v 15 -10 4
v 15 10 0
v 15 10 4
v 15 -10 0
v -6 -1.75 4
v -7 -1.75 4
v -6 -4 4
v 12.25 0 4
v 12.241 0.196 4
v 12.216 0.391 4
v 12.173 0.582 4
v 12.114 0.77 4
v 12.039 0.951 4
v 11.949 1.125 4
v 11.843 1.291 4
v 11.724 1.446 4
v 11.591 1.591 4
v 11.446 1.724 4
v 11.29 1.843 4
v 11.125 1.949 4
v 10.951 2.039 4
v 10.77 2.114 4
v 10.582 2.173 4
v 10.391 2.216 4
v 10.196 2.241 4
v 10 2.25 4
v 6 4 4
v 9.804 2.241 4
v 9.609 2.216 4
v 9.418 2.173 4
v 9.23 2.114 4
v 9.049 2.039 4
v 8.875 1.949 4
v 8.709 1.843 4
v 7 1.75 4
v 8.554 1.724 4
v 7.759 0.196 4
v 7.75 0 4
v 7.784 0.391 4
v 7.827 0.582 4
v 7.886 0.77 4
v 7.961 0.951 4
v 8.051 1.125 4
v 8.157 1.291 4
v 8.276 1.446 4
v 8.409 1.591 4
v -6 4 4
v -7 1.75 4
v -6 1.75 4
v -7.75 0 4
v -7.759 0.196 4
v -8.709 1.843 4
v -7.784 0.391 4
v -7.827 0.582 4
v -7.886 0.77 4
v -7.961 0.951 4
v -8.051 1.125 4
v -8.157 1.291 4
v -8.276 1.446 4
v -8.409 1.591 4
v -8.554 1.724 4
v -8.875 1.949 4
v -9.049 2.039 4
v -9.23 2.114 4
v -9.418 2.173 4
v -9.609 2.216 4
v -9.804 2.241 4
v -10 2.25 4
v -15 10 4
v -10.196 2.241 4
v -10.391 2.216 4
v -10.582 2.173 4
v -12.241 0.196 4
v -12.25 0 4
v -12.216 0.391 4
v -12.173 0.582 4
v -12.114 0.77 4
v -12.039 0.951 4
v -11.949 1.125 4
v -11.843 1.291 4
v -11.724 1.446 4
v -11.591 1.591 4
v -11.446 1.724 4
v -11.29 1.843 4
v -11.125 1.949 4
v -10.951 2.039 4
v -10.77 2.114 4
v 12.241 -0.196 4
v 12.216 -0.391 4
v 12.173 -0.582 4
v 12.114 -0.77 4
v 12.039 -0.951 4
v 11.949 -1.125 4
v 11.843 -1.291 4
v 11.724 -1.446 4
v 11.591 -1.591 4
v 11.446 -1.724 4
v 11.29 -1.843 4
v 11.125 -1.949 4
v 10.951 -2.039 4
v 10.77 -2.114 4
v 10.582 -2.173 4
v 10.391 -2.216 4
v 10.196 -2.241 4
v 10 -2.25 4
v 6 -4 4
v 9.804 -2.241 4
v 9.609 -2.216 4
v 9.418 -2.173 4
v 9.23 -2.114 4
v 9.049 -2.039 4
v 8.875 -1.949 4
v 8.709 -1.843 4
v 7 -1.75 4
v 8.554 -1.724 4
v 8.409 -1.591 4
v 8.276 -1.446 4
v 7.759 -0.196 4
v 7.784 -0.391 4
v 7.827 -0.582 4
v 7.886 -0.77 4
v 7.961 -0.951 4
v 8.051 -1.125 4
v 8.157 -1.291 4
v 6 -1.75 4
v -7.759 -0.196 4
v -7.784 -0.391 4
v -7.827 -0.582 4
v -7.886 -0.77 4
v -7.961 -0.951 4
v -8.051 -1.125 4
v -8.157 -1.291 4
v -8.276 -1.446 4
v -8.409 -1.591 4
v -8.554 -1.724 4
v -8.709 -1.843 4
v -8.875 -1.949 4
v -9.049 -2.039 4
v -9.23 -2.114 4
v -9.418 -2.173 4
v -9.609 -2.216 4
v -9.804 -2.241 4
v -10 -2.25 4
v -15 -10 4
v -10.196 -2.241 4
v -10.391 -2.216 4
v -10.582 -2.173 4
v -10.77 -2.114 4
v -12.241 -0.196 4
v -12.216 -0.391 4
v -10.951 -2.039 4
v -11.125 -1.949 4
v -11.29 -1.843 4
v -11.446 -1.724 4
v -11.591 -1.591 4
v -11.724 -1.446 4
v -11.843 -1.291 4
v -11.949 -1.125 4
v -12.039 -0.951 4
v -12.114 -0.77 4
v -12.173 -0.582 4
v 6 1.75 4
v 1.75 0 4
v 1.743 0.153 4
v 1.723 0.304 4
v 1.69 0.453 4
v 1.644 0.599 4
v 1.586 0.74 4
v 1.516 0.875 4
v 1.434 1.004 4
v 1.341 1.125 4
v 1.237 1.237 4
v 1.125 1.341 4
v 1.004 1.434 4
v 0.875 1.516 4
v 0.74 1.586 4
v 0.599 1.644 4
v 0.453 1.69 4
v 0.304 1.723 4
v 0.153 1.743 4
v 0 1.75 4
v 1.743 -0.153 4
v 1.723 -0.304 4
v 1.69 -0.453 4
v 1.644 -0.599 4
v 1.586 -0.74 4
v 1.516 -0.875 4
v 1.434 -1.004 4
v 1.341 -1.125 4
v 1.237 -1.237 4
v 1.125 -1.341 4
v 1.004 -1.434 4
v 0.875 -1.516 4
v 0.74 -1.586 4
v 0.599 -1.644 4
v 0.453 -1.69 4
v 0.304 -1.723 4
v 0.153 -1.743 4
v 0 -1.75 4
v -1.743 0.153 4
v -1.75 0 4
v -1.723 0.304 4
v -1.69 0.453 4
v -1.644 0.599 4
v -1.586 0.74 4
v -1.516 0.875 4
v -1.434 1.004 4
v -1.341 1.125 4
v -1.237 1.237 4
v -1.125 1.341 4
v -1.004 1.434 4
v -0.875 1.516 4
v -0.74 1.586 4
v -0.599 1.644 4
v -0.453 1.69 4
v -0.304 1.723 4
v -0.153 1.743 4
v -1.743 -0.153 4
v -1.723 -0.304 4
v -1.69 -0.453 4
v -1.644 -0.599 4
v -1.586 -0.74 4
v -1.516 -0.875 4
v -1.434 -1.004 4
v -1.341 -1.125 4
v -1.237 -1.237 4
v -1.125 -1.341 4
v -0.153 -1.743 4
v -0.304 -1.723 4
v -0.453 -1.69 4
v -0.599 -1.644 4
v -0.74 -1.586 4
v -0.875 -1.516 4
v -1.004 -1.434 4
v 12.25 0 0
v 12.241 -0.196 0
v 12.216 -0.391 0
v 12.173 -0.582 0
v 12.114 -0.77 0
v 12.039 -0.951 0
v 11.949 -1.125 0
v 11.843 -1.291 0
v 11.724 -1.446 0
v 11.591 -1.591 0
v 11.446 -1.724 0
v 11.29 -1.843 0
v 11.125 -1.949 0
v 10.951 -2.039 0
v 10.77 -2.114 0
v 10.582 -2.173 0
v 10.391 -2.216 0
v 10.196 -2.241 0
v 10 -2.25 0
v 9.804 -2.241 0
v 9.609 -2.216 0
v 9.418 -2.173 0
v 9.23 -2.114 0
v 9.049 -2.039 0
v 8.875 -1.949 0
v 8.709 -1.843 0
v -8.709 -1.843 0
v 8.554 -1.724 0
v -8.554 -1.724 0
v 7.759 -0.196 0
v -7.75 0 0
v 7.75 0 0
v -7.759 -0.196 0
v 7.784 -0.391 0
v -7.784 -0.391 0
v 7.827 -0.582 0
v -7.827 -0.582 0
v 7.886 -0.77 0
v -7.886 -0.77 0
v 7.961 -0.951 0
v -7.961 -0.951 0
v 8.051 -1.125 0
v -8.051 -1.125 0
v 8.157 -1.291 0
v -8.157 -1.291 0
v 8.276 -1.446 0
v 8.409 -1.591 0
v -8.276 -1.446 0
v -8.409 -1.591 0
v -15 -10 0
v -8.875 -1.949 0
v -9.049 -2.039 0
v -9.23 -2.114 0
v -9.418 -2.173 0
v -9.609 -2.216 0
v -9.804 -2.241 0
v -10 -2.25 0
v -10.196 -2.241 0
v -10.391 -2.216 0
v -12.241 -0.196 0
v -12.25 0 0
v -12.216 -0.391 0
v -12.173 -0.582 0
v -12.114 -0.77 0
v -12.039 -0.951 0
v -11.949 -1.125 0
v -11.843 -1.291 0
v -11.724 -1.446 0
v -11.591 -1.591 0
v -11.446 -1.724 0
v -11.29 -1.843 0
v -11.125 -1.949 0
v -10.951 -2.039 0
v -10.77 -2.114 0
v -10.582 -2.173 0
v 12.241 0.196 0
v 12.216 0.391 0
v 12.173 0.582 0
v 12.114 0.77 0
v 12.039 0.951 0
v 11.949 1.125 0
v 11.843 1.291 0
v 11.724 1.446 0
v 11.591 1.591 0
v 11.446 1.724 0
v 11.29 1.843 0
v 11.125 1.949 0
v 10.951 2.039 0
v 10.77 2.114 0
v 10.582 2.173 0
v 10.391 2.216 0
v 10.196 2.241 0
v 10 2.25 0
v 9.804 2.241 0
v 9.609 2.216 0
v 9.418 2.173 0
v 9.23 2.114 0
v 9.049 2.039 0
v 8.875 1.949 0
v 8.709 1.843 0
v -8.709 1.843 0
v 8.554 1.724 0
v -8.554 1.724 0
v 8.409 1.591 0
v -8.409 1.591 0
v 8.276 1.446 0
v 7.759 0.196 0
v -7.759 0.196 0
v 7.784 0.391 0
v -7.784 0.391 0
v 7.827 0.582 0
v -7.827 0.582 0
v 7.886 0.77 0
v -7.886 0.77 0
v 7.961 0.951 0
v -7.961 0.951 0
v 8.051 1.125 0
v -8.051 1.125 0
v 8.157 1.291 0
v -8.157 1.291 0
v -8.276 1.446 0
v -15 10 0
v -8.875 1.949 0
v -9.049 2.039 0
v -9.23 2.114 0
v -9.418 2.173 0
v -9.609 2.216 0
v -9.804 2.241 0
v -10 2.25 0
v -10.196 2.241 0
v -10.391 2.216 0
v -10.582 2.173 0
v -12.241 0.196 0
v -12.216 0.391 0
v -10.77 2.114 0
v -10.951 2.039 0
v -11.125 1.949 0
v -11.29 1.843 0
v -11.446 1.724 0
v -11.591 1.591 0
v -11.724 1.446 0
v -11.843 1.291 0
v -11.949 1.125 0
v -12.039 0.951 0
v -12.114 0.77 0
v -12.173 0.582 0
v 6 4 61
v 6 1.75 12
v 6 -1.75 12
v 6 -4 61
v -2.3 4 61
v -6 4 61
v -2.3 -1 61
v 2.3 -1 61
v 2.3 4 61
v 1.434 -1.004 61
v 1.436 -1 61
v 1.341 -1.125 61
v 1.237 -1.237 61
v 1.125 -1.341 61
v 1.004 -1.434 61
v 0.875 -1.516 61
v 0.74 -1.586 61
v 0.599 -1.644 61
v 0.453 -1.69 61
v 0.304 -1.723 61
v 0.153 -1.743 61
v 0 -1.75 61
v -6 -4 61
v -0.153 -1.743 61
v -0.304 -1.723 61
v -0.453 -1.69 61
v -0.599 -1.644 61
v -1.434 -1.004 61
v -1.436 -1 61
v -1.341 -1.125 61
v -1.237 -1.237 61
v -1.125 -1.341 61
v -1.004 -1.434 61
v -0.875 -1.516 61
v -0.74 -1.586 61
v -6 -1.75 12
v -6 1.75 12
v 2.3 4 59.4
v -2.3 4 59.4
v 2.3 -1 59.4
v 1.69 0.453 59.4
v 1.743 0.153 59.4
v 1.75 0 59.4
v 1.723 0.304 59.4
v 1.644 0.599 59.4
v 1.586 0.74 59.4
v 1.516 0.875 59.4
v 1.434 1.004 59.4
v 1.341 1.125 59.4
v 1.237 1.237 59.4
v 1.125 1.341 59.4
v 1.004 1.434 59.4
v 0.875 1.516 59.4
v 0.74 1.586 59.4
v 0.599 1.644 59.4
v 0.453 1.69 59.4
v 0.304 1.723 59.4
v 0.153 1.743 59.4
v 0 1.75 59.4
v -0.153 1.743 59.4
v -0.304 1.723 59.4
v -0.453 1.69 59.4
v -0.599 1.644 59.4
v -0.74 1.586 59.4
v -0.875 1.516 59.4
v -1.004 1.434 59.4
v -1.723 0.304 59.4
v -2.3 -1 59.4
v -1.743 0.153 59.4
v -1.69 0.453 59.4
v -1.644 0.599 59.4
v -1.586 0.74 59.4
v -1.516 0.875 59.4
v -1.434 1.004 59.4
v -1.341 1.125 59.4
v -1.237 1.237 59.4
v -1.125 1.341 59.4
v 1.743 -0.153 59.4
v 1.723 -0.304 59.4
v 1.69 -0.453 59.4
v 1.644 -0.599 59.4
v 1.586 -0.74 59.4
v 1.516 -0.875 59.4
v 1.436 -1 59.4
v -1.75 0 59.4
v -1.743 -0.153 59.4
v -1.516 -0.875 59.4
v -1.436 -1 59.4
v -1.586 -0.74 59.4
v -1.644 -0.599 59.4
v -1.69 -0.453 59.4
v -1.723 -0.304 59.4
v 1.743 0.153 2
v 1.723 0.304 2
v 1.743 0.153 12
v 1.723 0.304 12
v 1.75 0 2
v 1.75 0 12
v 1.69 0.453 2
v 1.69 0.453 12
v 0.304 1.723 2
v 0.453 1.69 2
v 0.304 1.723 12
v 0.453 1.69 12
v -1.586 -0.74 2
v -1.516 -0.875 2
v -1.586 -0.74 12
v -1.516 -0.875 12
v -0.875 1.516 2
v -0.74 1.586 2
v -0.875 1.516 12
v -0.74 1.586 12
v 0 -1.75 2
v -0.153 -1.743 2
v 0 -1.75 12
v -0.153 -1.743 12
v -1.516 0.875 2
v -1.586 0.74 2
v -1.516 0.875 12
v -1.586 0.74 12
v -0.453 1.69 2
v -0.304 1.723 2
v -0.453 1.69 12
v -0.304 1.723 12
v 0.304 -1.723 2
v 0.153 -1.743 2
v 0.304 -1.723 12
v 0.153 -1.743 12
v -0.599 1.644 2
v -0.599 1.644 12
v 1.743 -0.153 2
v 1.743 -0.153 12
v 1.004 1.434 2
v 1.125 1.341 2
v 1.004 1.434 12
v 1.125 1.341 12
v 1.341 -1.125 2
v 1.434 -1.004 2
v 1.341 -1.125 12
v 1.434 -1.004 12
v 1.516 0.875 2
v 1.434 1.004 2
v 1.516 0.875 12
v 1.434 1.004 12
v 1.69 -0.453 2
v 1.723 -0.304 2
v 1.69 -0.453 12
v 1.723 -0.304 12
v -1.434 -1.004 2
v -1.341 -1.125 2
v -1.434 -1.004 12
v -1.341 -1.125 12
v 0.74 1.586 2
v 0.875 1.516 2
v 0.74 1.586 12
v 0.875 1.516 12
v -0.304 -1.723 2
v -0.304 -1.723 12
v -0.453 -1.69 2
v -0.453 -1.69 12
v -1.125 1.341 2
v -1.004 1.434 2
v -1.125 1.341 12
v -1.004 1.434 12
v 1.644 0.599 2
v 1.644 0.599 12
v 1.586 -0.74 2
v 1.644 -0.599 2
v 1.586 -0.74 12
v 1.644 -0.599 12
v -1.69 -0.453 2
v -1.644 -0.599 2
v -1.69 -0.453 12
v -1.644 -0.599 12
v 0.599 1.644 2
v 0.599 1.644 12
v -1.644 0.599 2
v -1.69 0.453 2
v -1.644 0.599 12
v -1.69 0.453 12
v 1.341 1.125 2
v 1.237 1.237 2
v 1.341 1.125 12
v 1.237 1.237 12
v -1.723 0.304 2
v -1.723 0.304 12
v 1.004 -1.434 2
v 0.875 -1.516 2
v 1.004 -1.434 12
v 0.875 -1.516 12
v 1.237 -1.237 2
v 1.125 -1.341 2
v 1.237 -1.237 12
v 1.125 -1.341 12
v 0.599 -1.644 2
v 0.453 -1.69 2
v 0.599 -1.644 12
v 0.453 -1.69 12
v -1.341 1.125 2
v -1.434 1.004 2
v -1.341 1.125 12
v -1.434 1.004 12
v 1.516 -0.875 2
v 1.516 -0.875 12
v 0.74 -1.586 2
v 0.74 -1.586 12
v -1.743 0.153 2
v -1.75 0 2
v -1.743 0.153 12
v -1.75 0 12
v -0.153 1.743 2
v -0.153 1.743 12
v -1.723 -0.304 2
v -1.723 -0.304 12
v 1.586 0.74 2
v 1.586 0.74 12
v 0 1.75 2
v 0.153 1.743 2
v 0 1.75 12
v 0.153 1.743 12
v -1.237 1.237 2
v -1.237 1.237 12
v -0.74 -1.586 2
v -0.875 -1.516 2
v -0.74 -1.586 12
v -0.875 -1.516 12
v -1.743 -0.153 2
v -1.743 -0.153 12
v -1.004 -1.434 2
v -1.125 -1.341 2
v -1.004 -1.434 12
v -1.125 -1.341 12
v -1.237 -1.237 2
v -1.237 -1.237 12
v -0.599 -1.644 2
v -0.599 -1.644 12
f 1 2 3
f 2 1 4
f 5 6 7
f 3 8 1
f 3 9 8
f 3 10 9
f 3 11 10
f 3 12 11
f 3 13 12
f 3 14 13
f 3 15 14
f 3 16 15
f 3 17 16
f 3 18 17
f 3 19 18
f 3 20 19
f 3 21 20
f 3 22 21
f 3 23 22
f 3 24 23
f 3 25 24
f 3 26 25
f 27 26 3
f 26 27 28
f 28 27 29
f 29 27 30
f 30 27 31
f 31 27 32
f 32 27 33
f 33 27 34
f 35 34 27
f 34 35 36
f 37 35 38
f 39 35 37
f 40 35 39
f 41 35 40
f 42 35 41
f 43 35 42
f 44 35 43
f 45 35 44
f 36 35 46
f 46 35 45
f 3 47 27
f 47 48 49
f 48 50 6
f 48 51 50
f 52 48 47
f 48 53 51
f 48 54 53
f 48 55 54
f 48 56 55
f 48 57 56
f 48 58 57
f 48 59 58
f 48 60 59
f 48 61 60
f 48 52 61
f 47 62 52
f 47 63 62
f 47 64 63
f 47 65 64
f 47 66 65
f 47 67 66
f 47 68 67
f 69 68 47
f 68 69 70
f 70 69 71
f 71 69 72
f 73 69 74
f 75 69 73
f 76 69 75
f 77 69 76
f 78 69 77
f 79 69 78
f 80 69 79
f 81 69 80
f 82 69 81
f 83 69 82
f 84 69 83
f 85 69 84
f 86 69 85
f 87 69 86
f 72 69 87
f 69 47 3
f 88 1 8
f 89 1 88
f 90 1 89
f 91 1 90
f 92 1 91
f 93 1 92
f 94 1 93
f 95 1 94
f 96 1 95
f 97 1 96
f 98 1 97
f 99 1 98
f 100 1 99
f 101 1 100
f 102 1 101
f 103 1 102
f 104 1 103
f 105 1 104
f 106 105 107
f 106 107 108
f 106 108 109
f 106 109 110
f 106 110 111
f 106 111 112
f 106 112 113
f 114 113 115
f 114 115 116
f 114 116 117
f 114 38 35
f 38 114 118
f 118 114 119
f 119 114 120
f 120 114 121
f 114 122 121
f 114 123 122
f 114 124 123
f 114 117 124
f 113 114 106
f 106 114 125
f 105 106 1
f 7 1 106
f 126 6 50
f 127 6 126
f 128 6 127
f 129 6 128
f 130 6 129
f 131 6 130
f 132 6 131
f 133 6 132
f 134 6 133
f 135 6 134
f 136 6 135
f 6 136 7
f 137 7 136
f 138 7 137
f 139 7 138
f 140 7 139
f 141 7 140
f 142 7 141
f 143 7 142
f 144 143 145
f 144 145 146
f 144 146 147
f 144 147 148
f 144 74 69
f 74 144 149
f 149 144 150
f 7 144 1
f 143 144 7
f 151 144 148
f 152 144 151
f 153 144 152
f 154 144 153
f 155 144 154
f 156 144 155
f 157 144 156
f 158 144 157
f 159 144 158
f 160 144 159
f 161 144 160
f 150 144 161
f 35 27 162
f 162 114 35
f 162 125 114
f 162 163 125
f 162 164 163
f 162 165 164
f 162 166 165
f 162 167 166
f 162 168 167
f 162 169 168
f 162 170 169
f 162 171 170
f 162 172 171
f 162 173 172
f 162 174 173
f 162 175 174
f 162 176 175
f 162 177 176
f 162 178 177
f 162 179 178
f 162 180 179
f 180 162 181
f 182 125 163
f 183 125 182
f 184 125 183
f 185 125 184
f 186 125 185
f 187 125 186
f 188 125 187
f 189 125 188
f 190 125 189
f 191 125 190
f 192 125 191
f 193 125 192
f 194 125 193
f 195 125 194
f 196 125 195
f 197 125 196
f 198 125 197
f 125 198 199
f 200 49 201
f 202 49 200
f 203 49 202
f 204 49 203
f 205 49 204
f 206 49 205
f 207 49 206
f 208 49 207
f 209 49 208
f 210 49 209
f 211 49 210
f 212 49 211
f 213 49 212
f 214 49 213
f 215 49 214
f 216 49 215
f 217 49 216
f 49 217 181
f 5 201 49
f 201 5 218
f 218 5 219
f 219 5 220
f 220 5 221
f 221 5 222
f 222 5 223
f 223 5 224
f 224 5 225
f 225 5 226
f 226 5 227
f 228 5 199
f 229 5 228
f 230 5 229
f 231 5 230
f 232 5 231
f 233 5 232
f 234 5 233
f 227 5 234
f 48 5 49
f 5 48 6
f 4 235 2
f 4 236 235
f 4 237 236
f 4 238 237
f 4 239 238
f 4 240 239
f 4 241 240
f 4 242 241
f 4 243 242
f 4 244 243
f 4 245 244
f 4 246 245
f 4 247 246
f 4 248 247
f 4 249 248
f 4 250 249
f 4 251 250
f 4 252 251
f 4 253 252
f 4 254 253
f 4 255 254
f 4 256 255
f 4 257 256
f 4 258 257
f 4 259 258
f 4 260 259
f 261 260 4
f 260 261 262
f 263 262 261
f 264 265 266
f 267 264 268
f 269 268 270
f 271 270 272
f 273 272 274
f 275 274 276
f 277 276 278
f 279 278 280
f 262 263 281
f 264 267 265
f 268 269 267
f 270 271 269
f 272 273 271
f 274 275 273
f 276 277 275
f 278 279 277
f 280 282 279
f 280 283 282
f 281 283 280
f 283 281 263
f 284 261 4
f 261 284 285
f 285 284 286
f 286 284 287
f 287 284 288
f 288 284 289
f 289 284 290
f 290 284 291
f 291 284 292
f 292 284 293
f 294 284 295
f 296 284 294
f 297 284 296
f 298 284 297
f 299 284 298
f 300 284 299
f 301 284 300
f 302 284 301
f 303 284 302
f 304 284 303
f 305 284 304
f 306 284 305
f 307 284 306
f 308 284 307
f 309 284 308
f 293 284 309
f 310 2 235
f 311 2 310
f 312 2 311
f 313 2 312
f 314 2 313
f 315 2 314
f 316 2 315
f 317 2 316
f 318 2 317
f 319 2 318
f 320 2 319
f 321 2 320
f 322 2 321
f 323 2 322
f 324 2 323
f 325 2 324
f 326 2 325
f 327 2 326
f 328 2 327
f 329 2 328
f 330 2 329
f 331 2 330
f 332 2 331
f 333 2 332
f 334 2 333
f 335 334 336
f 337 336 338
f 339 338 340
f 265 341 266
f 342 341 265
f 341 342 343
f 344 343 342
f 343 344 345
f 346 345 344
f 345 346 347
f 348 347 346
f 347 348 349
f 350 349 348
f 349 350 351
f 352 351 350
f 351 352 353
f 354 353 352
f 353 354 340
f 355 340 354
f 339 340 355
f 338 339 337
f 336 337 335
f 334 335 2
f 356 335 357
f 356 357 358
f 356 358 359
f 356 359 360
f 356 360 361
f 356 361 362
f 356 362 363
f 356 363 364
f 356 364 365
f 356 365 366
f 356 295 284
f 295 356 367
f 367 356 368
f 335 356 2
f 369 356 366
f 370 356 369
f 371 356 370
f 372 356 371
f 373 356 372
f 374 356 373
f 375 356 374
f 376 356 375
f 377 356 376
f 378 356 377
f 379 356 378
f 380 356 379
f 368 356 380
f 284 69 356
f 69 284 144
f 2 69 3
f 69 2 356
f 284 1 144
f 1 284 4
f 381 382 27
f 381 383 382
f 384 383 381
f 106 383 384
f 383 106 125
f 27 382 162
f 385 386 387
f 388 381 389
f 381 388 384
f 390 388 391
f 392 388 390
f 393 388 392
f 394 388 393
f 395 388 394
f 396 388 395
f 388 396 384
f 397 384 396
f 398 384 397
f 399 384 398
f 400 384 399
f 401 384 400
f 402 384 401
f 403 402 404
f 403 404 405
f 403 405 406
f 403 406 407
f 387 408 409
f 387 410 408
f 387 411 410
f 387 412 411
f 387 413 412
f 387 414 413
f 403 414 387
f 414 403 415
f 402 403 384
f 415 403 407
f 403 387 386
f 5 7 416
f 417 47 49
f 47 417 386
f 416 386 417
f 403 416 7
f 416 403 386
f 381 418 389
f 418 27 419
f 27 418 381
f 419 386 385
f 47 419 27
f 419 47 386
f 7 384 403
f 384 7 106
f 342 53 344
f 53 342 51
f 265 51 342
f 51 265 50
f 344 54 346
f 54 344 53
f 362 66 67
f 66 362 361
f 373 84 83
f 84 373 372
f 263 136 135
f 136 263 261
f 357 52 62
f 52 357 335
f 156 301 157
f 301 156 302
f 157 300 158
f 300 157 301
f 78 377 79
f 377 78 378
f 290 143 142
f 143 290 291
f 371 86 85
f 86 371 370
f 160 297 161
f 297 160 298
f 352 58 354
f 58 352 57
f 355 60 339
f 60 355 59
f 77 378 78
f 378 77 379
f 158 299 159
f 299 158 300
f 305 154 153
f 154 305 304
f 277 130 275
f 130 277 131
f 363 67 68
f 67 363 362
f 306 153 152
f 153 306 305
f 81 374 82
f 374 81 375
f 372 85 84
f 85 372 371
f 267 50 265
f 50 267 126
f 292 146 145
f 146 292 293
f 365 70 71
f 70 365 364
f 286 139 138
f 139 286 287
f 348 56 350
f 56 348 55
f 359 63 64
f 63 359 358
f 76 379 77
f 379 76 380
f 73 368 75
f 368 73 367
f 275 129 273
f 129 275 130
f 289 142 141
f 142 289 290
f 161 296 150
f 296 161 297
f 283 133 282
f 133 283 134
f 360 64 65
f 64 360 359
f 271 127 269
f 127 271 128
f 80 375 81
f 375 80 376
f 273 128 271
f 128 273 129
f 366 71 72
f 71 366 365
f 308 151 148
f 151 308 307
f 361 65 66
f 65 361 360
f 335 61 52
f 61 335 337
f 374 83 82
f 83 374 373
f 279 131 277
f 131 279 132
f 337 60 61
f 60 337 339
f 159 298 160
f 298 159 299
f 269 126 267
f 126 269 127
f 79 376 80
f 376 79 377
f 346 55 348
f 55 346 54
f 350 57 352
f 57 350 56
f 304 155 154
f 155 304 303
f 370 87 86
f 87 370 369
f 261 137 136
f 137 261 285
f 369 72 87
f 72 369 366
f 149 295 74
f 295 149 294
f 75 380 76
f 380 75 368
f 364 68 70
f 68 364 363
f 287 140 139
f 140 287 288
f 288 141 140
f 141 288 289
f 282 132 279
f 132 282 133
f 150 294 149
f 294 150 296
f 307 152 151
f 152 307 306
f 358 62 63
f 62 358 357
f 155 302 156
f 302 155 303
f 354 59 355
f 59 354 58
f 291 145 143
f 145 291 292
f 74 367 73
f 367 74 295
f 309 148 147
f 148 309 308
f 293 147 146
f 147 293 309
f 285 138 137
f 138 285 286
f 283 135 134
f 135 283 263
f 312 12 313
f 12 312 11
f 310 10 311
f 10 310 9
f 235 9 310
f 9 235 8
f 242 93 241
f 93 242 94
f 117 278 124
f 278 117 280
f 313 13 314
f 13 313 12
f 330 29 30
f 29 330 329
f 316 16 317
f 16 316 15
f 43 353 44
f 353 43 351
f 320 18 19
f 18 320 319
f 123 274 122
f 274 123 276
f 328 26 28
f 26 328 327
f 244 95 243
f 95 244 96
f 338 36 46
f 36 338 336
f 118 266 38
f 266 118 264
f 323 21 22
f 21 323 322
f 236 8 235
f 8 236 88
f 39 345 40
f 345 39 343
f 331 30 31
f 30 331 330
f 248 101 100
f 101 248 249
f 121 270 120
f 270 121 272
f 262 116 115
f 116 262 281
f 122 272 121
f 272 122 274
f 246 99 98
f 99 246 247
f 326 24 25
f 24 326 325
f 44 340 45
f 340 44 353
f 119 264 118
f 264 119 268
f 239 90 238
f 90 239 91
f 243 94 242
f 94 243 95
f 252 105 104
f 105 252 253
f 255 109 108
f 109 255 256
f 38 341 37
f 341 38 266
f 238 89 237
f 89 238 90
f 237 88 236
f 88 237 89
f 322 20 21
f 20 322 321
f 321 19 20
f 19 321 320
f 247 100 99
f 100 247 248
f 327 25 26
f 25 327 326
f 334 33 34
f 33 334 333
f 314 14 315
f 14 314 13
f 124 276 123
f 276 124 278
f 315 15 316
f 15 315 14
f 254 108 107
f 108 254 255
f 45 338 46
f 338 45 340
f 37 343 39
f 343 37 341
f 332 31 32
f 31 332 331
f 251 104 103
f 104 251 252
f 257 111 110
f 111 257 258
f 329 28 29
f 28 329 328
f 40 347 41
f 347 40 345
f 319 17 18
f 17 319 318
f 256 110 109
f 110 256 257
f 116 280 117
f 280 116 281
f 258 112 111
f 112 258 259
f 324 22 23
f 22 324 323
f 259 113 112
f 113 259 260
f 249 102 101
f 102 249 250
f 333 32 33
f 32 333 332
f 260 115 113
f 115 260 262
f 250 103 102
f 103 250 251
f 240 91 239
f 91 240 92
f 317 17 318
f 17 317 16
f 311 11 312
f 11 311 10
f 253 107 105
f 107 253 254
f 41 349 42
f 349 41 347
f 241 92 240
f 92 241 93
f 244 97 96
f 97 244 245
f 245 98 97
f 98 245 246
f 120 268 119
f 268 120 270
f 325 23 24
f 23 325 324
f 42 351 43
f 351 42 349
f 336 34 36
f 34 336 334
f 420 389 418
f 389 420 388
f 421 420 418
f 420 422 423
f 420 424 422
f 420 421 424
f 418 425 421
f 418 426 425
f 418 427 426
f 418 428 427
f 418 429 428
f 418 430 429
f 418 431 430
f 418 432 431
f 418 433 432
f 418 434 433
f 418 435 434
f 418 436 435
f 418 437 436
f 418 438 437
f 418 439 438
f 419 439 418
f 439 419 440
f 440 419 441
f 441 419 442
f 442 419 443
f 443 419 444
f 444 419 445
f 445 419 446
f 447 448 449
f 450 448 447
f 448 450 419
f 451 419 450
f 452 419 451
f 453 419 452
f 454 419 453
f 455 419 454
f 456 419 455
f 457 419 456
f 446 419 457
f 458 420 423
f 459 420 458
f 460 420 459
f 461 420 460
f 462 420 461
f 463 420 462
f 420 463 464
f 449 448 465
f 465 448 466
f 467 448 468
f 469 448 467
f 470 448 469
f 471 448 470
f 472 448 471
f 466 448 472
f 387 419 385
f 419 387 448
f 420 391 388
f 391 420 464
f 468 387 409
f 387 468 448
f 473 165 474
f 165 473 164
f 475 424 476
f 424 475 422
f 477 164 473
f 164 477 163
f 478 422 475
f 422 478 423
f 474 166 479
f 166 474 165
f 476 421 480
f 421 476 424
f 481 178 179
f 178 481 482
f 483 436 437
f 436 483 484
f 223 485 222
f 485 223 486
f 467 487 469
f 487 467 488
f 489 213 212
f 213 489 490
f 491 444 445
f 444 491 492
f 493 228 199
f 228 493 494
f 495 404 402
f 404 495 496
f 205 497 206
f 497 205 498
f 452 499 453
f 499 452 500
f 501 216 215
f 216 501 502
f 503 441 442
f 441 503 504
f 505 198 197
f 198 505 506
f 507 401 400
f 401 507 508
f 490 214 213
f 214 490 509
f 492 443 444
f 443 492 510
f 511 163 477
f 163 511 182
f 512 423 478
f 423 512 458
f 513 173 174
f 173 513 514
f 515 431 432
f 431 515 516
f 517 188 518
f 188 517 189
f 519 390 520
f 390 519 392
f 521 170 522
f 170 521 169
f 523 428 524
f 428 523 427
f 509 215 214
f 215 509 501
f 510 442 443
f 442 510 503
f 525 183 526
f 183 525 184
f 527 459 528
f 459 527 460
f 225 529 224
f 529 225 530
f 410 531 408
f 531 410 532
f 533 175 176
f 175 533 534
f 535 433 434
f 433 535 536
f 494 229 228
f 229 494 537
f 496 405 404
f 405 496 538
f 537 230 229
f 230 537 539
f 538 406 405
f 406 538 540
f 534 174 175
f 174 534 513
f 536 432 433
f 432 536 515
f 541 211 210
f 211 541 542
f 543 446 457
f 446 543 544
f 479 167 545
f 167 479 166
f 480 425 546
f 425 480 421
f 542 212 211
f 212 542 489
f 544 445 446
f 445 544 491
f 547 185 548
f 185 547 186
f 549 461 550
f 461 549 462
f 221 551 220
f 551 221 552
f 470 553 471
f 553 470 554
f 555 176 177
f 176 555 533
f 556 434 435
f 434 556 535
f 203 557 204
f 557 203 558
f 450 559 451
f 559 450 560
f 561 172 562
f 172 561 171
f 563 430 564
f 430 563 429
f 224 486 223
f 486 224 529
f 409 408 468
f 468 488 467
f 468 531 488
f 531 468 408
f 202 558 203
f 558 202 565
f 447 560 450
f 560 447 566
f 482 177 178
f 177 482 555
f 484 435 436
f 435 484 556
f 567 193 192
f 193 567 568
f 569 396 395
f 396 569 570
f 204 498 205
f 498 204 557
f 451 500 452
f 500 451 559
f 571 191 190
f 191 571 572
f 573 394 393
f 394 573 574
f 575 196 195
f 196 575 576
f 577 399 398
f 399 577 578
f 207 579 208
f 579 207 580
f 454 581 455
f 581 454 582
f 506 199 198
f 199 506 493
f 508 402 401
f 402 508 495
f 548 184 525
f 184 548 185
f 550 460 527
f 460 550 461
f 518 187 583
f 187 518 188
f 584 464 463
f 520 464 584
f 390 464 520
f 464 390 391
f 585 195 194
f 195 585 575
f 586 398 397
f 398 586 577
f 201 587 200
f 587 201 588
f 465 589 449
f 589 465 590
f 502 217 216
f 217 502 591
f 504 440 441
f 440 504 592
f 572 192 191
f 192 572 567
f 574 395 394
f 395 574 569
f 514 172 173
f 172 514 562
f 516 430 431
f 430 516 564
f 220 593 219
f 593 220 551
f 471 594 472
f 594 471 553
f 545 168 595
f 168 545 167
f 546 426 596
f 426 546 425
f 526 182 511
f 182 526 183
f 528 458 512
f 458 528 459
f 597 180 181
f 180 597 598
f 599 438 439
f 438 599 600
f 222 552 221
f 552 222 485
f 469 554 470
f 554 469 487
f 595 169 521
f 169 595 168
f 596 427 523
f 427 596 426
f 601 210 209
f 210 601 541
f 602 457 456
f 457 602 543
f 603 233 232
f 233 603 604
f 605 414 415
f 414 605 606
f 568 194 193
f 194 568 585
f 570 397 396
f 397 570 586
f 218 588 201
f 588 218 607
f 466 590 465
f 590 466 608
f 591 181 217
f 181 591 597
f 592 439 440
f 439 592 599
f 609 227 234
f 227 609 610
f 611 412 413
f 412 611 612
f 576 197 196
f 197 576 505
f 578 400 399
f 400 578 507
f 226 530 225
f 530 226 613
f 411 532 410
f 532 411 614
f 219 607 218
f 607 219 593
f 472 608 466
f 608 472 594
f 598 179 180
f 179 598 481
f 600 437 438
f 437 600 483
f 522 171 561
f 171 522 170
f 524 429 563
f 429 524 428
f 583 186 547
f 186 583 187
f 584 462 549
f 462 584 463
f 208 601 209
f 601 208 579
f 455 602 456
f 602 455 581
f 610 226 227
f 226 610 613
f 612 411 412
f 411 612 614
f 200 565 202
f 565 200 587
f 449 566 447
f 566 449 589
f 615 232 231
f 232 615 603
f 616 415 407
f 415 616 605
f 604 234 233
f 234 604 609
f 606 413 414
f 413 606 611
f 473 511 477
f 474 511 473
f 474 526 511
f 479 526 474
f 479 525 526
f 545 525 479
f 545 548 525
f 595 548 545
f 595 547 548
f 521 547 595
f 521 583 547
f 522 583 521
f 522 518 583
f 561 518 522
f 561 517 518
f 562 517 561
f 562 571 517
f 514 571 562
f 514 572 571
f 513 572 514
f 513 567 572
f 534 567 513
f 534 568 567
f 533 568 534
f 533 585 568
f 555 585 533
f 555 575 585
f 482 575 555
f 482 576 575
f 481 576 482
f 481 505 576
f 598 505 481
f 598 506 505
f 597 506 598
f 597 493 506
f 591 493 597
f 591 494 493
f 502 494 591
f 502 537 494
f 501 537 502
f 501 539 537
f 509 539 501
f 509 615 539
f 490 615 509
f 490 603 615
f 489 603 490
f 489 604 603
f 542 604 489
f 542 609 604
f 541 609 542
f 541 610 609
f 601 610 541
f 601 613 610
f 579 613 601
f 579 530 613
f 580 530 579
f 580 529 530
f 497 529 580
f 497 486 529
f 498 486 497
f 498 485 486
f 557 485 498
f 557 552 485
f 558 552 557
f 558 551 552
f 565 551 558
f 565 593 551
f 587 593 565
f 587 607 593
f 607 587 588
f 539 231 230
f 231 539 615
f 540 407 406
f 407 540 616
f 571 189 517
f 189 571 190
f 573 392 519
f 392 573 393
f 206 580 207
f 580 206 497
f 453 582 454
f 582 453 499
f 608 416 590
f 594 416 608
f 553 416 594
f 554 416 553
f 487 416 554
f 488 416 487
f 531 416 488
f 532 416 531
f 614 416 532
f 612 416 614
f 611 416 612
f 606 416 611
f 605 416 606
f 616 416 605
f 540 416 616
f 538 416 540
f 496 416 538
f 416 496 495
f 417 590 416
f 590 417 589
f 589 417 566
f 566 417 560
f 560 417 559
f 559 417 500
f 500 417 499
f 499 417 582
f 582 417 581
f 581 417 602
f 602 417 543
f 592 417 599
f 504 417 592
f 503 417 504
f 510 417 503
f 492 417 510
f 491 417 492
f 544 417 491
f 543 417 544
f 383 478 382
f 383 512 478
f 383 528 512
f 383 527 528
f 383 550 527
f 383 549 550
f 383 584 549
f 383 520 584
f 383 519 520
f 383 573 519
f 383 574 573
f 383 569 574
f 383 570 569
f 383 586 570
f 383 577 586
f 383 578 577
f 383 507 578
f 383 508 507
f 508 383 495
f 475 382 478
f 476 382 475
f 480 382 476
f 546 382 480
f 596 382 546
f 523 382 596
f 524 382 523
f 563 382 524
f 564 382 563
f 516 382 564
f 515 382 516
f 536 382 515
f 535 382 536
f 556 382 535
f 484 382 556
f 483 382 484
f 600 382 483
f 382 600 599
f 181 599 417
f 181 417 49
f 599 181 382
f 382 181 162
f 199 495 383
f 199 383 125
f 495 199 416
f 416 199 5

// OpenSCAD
// file: comun.scad
// Utilidades comunes
$fn = 72;
module rrect(w, h, r, t) { linear_extrude(t) offset(r) square([w - 2*r, h - 2*r], center = true); }
// Collar partido con oreja y tornillo de apriete (eje Z). d = diámetro interior
module collar(d, h, pared = 5, oreja = 12, tornillo = 4.5) {
  difference() {
    union() {
      cylinder(d = d + 2*pared, h = h);
      translate([-oreja/2, -(d/2 + pared + oreja - 2), 0]) cube([oreja, oreja + 2, h]);
    }
    translate([0, 0, -1]) cylinder(d = d, h = h + 2);
    translate([-1, -(d/2 + pared + oreja + 1), -1]) cube([2, pared + oreja + 2, h + 2]);   // ranura
    translate([-oreja, -(d/2 + pared + oreja/2 - 1), h/2]) rotate([0, 90, 0]) cylinder(d = tornillo, h = 2*oreja); // tornillo
  }
}
module collar_hueco(d, h, pared = 5) { translate([0, 0, -1]) cylinder(d = d, h = h + 2); }
// file: parametros.scad
// GENERADO por cad/generar_3d.py (versión B). No editar a mano.
r_varillas = 92.0;
ang_varillas = 30;
r_rotor = 82.0;
r_stator_ext = 102.0;
gap = 4;
separador = 9;
juegos = 22;
longitud_pack = 190;
d_eje = 5;
d_eje_motor = 8;
rodamiento_d = 16.2;
rodamiento_h = 5.2;
altura_eje = 75;
d_mastil = 40;
d_tubo = 22;
separacion_loop = 40;
// main file
// SOPORTE DEL SENSOR HALL A3144 (home = posición de Cmin). Imprimir 1.
include <parametros.scad>
include <comun.scad>
h = altura_eje - 25/2 - 1.5;       // cara del sensor 1,5 mm por debajo del acoplamiento
difference() {
  union() {
    translate([-15, -10, 0]) cube([30, 20, 4]);
    translate([-6, -4, 0]) cube([12, 8, h]);
  }
  translate([-2.3, -1, h - 1.6]) cube([4.6, 10, 1.7]);     // cuerpo TO-92 plano (4,1 x 1,5)
  translate([0, 0, 2]) cylinder(d = 3.5, h = h);          // paso de patillas
  translate([-7, -1.75, 4]) cube([14, 3.5, 8]);           // salida de cables
  for (x = [-10, 10]) translate([x, 0, -1]) cylinder(d = 4.5, h = 6);
}
